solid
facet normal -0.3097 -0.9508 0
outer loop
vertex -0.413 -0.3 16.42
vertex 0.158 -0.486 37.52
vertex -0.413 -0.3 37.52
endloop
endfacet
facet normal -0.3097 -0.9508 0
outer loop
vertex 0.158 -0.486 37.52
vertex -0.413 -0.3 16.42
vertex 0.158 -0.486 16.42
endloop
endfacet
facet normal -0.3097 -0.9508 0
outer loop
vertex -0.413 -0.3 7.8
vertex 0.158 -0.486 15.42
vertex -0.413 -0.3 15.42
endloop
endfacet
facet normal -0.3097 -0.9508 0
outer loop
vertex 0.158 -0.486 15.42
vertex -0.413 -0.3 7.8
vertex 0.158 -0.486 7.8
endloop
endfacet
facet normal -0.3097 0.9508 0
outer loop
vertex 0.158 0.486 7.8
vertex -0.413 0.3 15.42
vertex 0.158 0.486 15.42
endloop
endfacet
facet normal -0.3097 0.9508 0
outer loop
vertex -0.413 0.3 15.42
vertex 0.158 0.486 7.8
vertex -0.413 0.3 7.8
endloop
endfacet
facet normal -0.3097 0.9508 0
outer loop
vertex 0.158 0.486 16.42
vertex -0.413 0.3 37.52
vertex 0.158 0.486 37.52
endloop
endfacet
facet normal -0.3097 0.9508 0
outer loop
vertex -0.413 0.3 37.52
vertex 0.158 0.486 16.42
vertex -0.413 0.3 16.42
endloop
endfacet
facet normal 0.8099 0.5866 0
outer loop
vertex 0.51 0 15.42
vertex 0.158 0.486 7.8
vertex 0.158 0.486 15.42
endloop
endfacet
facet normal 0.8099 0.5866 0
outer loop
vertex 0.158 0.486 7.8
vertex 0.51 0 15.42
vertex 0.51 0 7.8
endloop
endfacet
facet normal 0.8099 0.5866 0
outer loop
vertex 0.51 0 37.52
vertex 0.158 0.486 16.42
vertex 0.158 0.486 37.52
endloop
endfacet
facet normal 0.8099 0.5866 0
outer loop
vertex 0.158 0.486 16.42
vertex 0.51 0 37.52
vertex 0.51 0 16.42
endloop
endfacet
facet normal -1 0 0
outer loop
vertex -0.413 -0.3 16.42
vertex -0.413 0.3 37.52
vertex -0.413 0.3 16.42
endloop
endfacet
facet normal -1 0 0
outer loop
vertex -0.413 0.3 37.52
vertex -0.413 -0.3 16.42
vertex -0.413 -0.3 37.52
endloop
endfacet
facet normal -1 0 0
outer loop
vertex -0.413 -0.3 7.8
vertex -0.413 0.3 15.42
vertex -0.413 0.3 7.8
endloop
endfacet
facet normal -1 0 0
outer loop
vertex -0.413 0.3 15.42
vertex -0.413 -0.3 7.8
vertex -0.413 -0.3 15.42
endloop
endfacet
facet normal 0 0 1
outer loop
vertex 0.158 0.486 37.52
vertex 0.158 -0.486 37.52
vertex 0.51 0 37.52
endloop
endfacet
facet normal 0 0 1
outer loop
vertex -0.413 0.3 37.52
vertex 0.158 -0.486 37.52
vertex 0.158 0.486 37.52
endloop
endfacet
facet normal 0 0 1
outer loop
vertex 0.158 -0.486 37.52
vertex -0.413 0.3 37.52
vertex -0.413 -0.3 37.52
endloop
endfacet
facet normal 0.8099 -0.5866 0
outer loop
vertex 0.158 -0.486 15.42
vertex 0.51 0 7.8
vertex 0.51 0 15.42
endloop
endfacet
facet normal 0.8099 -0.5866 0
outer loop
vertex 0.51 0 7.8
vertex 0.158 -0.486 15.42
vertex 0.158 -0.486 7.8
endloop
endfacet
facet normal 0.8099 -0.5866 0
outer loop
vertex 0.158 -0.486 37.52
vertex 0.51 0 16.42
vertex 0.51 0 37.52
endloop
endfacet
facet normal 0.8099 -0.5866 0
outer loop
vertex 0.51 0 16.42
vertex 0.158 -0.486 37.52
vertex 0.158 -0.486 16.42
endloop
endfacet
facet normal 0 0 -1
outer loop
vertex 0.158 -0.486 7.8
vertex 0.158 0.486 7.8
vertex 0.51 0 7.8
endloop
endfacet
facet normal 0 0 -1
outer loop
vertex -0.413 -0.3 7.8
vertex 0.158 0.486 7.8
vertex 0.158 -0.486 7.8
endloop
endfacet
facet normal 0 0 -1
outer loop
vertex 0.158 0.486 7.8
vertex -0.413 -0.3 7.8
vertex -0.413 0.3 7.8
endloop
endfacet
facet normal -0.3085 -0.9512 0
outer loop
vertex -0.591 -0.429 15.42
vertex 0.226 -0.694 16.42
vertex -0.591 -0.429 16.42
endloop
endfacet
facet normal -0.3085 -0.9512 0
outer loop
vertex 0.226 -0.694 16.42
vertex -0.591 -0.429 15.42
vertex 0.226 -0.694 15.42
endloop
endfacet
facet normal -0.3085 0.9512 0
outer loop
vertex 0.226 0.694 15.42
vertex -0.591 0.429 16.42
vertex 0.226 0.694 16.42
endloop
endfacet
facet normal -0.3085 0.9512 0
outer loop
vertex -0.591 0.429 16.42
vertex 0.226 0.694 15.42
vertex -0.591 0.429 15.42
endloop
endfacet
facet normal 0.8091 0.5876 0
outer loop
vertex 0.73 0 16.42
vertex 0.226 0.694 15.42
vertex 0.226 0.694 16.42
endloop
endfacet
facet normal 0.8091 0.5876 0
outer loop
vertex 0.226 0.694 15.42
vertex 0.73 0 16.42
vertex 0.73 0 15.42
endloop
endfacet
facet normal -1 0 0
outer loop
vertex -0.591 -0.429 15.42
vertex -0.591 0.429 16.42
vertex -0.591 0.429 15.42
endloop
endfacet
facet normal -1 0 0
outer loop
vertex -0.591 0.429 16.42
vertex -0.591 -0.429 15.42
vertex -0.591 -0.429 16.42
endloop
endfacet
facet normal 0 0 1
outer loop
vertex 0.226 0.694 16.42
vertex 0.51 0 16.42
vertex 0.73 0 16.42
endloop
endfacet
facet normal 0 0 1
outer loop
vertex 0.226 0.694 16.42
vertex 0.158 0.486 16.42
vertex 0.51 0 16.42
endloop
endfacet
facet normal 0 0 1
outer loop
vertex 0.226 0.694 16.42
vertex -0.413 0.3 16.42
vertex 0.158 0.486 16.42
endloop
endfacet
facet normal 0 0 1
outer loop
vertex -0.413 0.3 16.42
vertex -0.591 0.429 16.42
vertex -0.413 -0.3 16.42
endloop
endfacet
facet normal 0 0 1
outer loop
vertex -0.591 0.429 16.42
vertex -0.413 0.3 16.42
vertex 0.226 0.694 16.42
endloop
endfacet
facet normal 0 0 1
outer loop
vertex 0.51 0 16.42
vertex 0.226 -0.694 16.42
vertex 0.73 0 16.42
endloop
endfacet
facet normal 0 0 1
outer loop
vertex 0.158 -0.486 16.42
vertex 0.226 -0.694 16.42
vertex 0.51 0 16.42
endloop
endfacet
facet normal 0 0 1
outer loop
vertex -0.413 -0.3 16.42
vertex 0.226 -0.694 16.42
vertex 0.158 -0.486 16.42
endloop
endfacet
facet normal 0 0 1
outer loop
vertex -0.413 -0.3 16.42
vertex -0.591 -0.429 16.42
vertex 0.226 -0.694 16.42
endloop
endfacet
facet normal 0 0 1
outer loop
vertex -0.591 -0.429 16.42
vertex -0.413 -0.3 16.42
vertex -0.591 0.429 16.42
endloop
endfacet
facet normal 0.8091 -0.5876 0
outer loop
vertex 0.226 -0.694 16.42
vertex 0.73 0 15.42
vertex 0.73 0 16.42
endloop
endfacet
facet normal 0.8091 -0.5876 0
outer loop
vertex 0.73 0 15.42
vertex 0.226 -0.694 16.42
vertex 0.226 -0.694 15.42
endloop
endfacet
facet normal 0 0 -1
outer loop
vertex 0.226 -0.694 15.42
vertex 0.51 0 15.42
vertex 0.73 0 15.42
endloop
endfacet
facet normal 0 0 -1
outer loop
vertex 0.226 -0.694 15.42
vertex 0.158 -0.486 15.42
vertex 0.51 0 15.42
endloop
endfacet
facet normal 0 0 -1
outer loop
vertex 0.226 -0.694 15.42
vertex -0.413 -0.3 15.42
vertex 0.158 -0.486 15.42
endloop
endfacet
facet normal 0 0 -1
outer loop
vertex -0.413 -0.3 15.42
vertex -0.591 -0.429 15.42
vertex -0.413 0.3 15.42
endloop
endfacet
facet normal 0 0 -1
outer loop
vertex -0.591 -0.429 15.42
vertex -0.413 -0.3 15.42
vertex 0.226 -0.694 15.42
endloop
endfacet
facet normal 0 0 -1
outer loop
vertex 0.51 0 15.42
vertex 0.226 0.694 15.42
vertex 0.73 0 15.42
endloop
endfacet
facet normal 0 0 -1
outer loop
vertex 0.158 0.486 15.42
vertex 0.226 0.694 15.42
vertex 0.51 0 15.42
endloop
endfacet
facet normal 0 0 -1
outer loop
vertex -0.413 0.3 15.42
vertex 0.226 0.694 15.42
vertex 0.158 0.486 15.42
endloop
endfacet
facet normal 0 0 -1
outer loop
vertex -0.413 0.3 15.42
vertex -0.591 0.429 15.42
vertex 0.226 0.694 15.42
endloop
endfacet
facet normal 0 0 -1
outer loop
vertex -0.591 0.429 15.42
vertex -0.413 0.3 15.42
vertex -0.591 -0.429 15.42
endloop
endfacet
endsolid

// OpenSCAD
module 075_SDN250S(){
    // QATech.com 075-SDN250S
    color("Gray")
    translate([0,0,7.8])cylinder(h=29.72,d=1.021,center=false);
    color("yellow")
    translate([0,0,7.8+7.62])cylinder(h=1,d=1.46,center=false);
}


/* Define the hole that needs to be cut for this socket */
module 075_SDN250S_pinhole() {
    d_top_ring = 1;  //  top ring diameter
    d_bottom_ring = 0.85;  //  lower ring diameter
    d_shaft = 0.68;  //  diameter of shaft
    rings_dz = 2;  //  separation between rings
    ring_top_dz = 1;  //  opening to top ring separation
    
    through_all = 1000;
    cylinder(h=through_all,d=d_shaft,center=true);
    translate([0,0,through_all/2-ring_top_dz])cylinder(h=through_all,d=d_top_ring,center=true);
    translate([0,0,through_all/2-(ring_top_dz+rings_dz)])cylinder(h=through_all,d=d_bottom_ring,center=true);
}
075_SDN250S();
